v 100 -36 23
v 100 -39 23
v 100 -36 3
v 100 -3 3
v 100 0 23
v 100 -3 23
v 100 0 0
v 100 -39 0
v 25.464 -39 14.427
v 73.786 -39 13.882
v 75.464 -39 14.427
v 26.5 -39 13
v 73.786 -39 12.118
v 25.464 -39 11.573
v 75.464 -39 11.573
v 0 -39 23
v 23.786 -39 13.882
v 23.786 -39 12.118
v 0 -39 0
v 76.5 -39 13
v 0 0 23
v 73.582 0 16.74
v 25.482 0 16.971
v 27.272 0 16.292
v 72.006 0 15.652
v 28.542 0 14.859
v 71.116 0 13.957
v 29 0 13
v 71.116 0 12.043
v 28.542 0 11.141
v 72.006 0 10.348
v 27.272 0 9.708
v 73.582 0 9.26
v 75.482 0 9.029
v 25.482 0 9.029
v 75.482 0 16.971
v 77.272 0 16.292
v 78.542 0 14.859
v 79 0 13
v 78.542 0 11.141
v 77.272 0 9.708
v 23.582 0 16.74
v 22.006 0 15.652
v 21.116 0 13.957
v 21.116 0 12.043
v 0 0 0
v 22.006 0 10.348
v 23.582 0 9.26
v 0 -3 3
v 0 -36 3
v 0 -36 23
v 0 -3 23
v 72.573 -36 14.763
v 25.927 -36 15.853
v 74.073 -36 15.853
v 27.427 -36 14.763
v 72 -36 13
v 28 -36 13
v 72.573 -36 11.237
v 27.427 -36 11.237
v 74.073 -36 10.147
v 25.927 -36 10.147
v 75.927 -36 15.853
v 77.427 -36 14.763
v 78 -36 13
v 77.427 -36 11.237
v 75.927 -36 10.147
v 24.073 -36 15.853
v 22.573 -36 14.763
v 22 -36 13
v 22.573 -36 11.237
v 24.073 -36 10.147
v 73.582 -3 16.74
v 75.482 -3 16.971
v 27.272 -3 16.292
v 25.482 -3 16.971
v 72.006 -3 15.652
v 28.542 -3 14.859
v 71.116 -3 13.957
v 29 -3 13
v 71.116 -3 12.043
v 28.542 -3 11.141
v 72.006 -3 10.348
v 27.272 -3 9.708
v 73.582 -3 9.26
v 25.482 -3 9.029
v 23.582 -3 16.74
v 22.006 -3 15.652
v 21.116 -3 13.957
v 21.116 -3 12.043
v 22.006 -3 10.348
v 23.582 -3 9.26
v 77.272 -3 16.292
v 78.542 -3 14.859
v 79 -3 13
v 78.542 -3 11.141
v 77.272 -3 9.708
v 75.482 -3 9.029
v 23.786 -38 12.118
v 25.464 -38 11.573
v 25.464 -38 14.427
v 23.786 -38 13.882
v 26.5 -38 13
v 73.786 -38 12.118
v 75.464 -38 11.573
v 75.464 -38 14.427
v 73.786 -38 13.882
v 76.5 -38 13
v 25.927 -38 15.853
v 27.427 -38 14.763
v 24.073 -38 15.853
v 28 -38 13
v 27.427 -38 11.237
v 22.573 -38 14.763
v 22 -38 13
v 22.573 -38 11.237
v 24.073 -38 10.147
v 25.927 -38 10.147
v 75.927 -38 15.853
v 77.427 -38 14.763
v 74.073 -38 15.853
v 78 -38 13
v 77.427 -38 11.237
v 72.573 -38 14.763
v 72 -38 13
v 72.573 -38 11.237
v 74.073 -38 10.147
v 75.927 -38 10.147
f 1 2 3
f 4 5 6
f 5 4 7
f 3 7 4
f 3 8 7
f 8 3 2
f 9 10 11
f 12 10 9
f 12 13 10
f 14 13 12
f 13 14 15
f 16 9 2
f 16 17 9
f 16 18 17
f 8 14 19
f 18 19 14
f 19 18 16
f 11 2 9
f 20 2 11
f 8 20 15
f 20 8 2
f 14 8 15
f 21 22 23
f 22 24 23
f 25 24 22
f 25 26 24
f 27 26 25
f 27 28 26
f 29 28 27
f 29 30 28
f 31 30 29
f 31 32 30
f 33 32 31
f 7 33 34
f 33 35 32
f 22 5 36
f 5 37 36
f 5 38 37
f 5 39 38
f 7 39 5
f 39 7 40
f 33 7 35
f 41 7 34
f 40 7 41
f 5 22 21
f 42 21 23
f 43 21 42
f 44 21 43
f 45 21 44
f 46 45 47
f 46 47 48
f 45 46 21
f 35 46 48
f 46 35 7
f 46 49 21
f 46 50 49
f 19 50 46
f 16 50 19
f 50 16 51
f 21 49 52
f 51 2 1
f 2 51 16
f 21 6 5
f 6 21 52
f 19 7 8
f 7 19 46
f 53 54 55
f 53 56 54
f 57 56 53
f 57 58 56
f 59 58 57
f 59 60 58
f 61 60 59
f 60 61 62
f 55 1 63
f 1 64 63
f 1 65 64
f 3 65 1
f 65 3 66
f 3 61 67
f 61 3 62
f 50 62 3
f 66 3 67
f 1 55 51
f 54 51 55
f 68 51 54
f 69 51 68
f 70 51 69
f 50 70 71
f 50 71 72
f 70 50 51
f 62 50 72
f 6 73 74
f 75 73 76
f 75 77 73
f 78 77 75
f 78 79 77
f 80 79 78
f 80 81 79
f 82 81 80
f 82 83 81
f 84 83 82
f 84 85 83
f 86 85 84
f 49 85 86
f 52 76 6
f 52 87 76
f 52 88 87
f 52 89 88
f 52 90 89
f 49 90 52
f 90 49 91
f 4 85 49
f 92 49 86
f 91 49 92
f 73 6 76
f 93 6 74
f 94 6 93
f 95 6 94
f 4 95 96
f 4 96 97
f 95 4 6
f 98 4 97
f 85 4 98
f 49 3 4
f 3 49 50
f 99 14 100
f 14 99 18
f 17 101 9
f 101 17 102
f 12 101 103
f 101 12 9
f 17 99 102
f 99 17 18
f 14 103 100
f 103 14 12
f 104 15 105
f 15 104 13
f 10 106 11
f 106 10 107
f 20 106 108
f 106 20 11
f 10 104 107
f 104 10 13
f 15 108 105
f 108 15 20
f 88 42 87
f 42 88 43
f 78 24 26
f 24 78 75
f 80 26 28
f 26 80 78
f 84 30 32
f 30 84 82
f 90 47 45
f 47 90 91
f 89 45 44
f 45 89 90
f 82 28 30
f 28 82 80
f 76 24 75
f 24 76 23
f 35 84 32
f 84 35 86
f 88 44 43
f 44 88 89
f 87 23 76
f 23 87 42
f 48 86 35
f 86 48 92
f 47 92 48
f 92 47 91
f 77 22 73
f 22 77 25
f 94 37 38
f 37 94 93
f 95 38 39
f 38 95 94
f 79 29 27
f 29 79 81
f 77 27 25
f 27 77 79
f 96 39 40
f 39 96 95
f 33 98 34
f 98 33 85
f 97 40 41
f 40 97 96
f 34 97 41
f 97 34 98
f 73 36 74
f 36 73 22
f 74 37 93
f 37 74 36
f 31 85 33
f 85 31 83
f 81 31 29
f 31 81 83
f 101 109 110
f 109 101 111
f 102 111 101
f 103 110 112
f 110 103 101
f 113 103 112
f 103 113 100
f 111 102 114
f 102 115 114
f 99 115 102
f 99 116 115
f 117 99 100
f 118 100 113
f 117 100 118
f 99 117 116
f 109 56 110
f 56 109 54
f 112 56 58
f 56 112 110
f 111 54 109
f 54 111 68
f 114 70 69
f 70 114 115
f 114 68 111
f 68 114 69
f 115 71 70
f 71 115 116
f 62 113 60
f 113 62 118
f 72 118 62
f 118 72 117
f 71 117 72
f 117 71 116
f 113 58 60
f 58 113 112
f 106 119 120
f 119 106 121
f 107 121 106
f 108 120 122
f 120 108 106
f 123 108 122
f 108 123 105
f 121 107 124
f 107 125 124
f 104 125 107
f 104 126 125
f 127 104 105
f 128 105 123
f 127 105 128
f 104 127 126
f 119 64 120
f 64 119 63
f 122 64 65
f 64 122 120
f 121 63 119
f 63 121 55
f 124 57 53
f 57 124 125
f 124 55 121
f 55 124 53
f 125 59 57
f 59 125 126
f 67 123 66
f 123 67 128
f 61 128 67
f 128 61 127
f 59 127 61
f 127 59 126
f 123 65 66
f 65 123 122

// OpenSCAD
/*
This is for having apple tv mounted under desk 
but it can be use for any other devices
the size is customizable, 
print two pieces of the same rail and mount them on the desk
because the design is symmetric, 
the distance between screws is fixed so that you can resize the length as you want
*/

wall = 3; // wall thickness
inner_height = 33; // height of internal cavity
length = 100; // length of the rail
inner_width = 20; // width of the rail
outer_width = inner_width + wall;
hole_y = inner_width / 2 + wall;
hole_distance = 50; // make sure it it is not bigger than length
hole_x1 = (length - hole_distance) / 2;
hole_x2 = hole_x1 + hole_distance;
screw_hole_radius = 1.5;
screw_driver_radius = 4;
screw_sink_depth = 1;
screw_sink_radius = 3; // radius of the countersink for the screw head

cube_outer = [length, outer_width, inner_height + 2*wall];
cube_inner = [length+2, inner_width+2, inner_height];

// lay down for easier printing
rotate([90,0,0])
    difference() {
        // outer shell
        cube(cube_outer, center = false);
        // inner cavity (translated up by wall thickness to create bottom)
        translate([-1, wall, wall])
            cube(cube_inner, center = false);
        // screw holes
        translate([hole_x1, hole_y, -1])
            cylinder(h=inner_height + 2*wall+2, r=screw_hole_radius, center=false);
        translate([hole_x2, hole_y, -1])
            cylinder(h=inner_height + 2*wall+2, r=screw_hole_radius, center=false);
        // screw driver clearance
        translate([hole_x1, hole_y, -1])
            cylinder(h=wall+2, r=screw_driver_radius, center=false);
        translate([hole_x2, hole_y, -1])
            cylinder(h=wall+2, r=screw_driver_radius, center=false);
        // screw head countersink
        translate([hole_x1, hole_y, wall + inner_height - screw_sink_depth])
            cylinder(h=wall, r=screw_sink_radius, center=false);
        translate([hole_x2, hole_y, wall + inner_height - screw_sink_depth])
            cylinder(h=wall, r=screw_sink_radius, center    =false);    
    }
